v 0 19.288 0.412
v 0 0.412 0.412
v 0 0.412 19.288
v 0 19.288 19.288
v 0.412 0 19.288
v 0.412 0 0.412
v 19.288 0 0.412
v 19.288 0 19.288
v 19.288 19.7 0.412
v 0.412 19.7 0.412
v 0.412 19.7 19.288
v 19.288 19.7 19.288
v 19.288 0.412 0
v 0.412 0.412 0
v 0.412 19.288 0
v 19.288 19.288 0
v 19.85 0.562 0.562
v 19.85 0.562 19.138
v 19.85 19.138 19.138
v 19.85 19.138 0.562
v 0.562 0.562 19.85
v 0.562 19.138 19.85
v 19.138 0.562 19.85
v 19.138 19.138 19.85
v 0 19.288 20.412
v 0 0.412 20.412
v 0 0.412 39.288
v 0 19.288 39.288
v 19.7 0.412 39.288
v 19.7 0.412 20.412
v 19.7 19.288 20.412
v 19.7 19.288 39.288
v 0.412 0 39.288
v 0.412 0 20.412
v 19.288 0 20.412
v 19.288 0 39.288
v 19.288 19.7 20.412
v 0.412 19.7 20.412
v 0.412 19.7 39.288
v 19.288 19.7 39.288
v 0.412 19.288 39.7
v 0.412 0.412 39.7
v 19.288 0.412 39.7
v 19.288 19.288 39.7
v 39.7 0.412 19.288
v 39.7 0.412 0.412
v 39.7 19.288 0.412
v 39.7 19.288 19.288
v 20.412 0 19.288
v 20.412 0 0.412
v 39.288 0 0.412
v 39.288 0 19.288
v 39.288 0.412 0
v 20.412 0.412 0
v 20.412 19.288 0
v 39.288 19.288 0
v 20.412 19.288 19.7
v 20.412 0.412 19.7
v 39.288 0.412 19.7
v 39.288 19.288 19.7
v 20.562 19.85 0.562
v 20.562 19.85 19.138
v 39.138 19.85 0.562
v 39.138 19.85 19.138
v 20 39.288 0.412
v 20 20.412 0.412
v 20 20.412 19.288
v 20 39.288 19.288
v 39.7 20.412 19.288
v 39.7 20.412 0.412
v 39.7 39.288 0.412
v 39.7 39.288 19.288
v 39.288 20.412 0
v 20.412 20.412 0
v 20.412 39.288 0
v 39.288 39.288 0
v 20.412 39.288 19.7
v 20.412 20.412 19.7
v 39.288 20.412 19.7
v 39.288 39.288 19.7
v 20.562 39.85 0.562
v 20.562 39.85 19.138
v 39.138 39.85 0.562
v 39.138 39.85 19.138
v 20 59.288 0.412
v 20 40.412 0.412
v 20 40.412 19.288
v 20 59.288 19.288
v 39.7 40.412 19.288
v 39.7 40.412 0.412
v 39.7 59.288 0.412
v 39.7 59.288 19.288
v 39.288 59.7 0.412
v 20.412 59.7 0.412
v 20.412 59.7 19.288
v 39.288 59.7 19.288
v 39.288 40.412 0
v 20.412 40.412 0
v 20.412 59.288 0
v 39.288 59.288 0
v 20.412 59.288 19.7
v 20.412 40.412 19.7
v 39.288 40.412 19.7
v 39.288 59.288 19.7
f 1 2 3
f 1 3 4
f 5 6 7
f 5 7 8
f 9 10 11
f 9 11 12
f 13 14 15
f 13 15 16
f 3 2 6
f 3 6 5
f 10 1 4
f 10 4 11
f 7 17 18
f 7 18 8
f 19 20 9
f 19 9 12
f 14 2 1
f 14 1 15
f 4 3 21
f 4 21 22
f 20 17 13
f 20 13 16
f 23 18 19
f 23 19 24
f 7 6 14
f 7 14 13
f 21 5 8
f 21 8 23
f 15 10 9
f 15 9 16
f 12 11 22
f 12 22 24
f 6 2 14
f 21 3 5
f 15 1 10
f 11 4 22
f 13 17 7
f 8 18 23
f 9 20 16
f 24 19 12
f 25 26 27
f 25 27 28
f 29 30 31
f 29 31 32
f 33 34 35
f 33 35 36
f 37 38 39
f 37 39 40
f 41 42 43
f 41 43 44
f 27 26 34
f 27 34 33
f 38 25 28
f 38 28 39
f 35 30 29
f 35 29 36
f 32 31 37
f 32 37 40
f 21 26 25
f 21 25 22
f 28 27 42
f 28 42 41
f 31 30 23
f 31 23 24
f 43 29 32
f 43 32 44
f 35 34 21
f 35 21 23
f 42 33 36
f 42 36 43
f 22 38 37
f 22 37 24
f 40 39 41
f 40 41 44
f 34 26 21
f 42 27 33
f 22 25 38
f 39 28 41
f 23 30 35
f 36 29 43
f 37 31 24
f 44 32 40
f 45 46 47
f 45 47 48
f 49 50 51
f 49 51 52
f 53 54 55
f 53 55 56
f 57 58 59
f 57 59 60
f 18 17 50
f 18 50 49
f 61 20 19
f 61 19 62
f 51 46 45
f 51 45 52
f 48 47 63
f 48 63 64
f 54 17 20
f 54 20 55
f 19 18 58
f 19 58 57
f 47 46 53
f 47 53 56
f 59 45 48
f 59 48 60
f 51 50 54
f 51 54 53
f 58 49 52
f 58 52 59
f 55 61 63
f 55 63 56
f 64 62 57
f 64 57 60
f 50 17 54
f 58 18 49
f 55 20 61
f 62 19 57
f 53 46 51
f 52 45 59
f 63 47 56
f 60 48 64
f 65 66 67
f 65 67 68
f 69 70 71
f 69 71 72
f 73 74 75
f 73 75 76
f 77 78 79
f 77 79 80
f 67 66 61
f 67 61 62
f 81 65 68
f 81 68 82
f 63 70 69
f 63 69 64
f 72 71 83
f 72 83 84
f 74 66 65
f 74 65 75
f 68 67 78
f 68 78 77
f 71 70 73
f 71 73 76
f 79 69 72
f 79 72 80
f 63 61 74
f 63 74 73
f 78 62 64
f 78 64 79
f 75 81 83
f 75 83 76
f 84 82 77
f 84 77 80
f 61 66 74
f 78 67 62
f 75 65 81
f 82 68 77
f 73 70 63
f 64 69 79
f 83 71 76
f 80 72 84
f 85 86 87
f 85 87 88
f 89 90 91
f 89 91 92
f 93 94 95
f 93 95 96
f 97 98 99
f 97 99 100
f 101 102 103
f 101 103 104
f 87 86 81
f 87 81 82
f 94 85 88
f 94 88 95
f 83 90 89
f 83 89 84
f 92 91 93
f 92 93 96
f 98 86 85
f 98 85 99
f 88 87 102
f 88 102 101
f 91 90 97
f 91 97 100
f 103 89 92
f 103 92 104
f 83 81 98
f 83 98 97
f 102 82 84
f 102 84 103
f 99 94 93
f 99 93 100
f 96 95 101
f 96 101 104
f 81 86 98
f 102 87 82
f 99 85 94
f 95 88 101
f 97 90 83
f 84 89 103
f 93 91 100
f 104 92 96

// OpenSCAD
// Wongo piece 5: Raised hook. GPL-3.0.
// 20 mm lattice; 0.15 mm inward surface clearance; 0.5 mm chamfer.
// Mesh is identical to the STL; changing unit scales the complete finished mesh.
unit=20;
scale([unit/20,unit/20,unit/20]) polyhedron(points=[[0,19.28786797,0.41213203],[0,0.41213203,0.41213203],[0,0.41213203,19.28786797],[0,19.28786797,19.28786797],[0.41213203,0,19.28786797],[0.41213203,0,0.41213203],[19.28786797,0,0.41213203],[19.28786797,0,19.28786797],[19.28786797,19.7,0.41213203],[0.41213203,19.7,0.41213203],[0.41213203,19.7,19.28786797],[19.28786797,19.7,19.28786797],[19.28786797,0.41213203,0],[0.41213203,0.41213203,0],[0.41213203,19.28786797,0],[19.28786797,19.28786797,0],[19.85,0.56213203,0.56213203],[19.85,0.56213203,19.13786797],[19.85,19.13786797,19.13786797],[19.85,19.13786797,0.56213203],[0.56213203,0.56213203,19.85],[0.56213203,19.13786797,19.85],[19.13786797,0.56213203,19.85],[19.13786797,19.13786797,19.85],[0,19.28786797,20.41213203],[0,0.41213203,20.41213203],[0,0.41213203,39.28786797],[0,19.28786797,39.28786797],[19.7,0.41213203,39.28786797],[19.7,0.41213203,20.41213203],[19.7,19.28786797,20.41213203],[19.7,19.28786797,39.28786797],[0.41213203,0,39.28786797],[0.41213203,0,20.41213203],[19.28786797,0,20.41213203],[19.28786797,0,39.28786797],[19.28786797,19.7,20.41213203],[0.41213203,19.7,20.41213203],[0.41213203,19.7,39.28786797],[19.28786797,19.7,39.28786797],[0.41213203,19.28786797,39.7],[0.41213203,0.41213203,39.7],[19.28786797,0.41213203,39.7],[19.28786797,19.28786797,39.7],[39.7,0.41213203,19.28786797],[39.7,0.41213203,0.41213203],[39.7,19.28786797,0.41213203],[39.7,19.28786797,19.28786797],[20.41213203,0,19.28786797],[20.41213203,0,0.41213203],[39.28786797,0,0.41213203],[39.28786797,0,19.28786797],[39.28786797,0.41213203,0],[20.41213203,0.41213203,0],[20.41213203,19.28786797,0],[39.28786797,19.28786797,0],[20.41213203,19.28786797,19.7],[20.41213203,0.41213203,19.7],[39.28786797,0.41213203,19.7],[39.28786797,19.28786797,19.7],[20.56213203,19.85,0.56213203],[20.56213203,19.85,19.13786797],[39.13786797,19.85,0.56213203],[39.13786797,19.85,19.13786797],[20,39.28786797,0.41213203],[20,20.41213203,0.41213203],[20,20.41213203,19.28786797],[20,39.28786797,19.28786797],[39.7,20.41213203,19.28786797],[39.7,20.41213203,0.41213203],[39.7,39.28786797,0.41213203],[39.7,39.28786797,19.28786797],[39.28786797,20.41213203,0],[20.41213203,20.41213203,0],[20.41213203,39.28786797,0],[39.28786797,39.28786797,0],[20.41213203,39.28786797,19.7],[20.41213203,20.41213203,19.7],[39.28786797,20.41213203,19.7],[39.28786797,39.28786797,19.7],[20.56213203,39.85,0.56213203],[20.56213203,39.85,19.13786797],[39.13786797,39.85,0.56213203],[39.13786797,39.85,19.13786797],[20,59.28786797,0.41213203],[20,40.41213203,0.41213203],[20,40.41213203,19.28786797],[20,59.28786797,19.28786797],[39.7,40.41213203,19.28786797],[39.7,40.41213203,0.41213203],[39.7,59.28786797,0.41213203],[39.7,59.28786797,19.28786797],[39.28786797,59.7,0.41213203],[20.41213203,59.7,0.41213203],[20.41213203,59.7,19.28786797],[39.28786797,59.7,19.28786797],[39.28786797,40.41213203,0],[20.41213203,40.41213203,0],[20.41213203,59.28786797,0],[39.28786797,59.28786797,0],[20.41213203,59.28786797,19.7],[20.41213203,40.41213203,19.7],[39.28786797,40.41213203,19.7],[39.28786797,59.28786797,19.7]],faces=[[2,1,0],[3,2,0],[6,5,4],[7,6,4],[10,9,8],[11,10,8],[14,13,12],[15,14,12],[5,1,2],[4,5,2],[3,0,9],[10,3,9],[17,16,6],[7,17,6],[8,19,18],[11,8,18],[0,1,13],[14,0,13],[20,2,3],[21,20,3],[12,16,19],[15,12,19],[18,17,22],[23,18,22],[13,5,6],[12,13,6],[7,4,20],[22,7,20],[8,9,14],[15,8,14],[21,10,11],[23,21,11],[13,1,5],[4,2,20],[9,0,14],[21,3,10],[6,16,12],[22,17,7],[15,19,8],[11,18,23],[26,25,24],[27,26,24],[30,29,28],[31,30,28],[34,33,32],[35,34,32],[38,37,36],[39,38,36],[42,41,40],[43,42,40],[33,25,26],[32,33,26],[27,24,37],[38,27,37],[28,29,34],[35,28,34],[36,30,31],[39,36,31],[24,25,20],[21,24,20],[41,26,27],[40,41,27],[22,29,30],[23,22,30],[31,28,42],[43,31,42],[20,33,34],[22,20,34],[35,32,41],[42,35,41],[36,37,21],[23,36,21],[40,38,39],[43,40,39],[20,25,33],[32,26,41],[37,24,21],[40,27,38],[34,29,22],[42,28,35],[23,30,36],[39,31,43],[46,45,44],[47,46,44],[50,49,48],[51,50,48],[54,53,52],[55,54,52],[58,57,56],[59,58,56],[49,16,17],[48,49,17],[18,19,60],[61,18,60],[44,45,50],[51,44,50],[62,46,47],[63,62,47],[19,16,53],[54,19,53],[57,17,18],[56,57,18],[52,45,46],[55,52,46],[47,44,58],[59,47,58],[53,49,50],[52,53,50],[51,48,57],[58,51,57],[62,60,54],[55,62,54],[56,61,63],[59,56,63],[53,16,49],[48,17,57],[60,19,54],[56,18,61],[50,45,52],[58,44,51],[55,46,62],[63,47,59],[66,65,64],[67,66,64],[70,69,68],[71,70,68],[74,73,72],[75,74,72],[78,77,76],[79,78,76],[60,65,66],[61,60,66],[67,64,80],[81,67,80],[68,69,62],[63,68,62],[82,70,71],[83,82,71],[64,65,73],[74,64,73],[77,66,67],[76,77,67],[72,69,70],[75,72,70],[71,68,78],[79,71,78],[73,60,62],[72,73,62],[63,61,77],[78,63,77],[82,80,74],[75,82,74],[76,81,83],[79,76,83],[73,65,60],[61,66,77],[80,64,74],[76,67,81],[62,69,72],[78,68,63],[75,70,82],[83,71,79],[86,85,84],[87,86,84],[90,89,88],[91,90,88],[94,93,92],[95,94,92],[98,97,96],[99,98,96],[102,101,100],[103,102,100],[80,85,86],[81,80,86],[87,84,93],[94,87,93],[88,89,82],[83,88,82],[92,90,91],[95,92,91],[84,85,97],[98,84,97],[101,86,87],[100,101,87],[96,89,90],[99,96,90],[91,88,102],[103,91,102],[97,80,82],[96,97,82],[83,81,101],[102,83,101],[92,93,98],[99,92,98],[100,94,95],[103,100,95],[97,85,80],[81,86,101],[93,84,98],[100,87,94],[82,89,96],[102,88,83],[99,90,92],[95,91,103]],convexity=10);
